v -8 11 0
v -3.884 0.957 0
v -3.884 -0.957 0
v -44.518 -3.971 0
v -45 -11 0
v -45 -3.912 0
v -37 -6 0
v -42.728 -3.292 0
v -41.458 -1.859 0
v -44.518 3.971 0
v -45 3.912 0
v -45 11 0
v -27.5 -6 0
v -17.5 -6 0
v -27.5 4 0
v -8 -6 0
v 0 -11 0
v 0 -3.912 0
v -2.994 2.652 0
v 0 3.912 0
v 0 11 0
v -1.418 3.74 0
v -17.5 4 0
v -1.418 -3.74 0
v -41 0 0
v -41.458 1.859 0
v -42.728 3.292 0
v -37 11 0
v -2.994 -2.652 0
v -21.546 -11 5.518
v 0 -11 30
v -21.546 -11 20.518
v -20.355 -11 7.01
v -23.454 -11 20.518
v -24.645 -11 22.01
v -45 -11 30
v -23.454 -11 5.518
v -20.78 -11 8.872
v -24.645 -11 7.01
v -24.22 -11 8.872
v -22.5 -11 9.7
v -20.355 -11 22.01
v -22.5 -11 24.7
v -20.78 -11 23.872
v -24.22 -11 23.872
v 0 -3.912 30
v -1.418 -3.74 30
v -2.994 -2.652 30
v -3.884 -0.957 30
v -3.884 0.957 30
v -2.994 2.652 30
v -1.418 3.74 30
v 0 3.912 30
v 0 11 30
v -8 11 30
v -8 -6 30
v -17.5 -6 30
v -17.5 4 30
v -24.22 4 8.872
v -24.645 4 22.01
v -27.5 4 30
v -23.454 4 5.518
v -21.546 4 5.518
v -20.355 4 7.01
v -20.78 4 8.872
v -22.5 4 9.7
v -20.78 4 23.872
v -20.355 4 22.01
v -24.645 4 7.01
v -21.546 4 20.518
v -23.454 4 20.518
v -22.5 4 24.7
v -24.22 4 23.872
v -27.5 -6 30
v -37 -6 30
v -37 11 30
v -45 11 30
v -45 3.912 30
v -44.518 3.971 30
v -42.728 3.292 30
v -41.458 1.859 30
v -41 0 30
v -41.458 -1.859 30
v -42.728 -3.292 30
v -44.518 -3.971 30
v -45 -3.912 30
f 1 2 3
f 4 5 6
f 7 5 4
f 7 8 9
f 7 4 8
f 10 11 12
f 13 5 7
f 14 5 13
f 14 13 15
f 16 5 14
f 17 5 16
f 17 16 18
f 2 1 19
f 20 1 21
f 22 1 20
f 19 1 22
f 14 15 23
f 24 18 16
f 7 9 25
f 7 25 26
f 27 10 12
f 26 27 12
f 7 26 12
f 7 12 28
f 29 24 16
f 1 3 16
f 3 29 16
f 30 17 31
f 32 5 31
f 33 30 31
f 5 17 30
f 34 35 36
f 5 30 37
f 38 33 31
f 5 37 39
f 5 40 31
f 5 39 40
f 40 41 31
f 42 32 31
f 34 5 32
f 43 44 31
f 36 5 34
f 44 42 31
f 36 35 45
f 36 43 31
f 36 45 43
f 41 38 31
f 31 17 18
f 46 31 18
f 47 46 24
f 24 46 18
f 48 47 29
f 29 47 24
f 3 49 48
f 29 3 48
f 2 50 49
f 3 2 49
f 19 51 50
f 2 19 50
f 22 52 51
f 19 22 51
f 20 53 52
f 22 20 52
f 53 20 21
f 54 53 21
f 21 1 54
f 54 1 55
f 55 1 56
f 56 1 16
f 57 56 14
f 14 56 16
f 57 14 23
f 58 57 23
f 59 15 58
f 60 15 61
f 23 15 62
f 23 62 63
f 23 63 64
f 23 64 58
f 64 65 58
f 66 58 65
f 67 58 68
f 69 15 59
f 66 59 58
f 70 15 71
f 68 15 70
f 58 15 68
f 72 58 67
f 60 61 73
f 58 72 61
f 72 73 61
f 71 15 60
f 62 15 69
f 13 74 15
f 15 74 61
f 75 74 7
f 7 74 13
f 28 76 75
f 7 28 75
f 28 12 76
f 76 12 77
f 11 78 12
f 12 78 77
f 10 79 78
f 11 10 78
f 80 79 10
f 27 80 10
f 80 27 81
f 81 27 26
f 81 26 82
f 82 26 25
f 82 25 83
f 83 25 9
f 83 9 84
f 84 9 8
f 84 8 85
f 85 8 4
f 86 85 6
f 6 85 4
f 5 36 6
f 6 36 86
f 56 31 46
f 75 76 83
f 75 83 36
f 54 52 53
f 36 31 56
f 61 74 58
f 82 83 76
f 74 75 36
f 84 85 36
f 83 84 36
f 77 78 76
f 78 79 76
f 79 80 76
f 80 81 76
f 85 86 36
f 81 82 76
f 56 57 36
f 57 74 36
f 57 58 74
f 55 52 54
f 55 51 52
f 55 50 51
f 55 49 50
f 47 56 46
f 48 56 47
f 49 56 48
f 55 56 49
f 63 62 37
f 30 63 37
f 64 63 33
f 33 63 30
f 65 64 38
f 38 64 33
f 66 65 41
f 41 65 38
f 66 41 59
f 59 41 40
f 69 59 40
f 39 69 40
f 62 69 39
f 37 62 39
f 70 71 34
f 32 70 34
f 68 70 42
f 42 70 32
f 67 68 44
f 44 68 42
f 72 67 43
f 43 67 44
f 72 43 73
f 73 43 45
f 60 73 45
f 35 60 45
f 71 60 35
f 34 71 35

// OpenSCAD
dist_cent=45;

rotate([0,-90,0])
difference(){

union(){
difference(){

translate([0,-11,0])
cube([30,22,dist_cent]);

union(){
translate([-1,0,0])
rotate([0,90,0])
cylinder(r=4,h=500);

translate([-1,0,dist_cent])
rotate([0,90,0])
cylinder(r=4,h=500);
}

translate([-1,-10+4,8])
cube([1000,30-10,45-8-8]);

}

translate([0,-11,45/2-10/2])
cube([30,15,10]);
}

//agujeros tornillos
translate([15/2,50,dist_cent/2])
rotate([90,0,0])
cylinder(r=2.2,h=500);


translate([30-15/2,50,dist_cent/2])
rotate([90,0,0])
cylinder(r=2.2,h=500);

}
